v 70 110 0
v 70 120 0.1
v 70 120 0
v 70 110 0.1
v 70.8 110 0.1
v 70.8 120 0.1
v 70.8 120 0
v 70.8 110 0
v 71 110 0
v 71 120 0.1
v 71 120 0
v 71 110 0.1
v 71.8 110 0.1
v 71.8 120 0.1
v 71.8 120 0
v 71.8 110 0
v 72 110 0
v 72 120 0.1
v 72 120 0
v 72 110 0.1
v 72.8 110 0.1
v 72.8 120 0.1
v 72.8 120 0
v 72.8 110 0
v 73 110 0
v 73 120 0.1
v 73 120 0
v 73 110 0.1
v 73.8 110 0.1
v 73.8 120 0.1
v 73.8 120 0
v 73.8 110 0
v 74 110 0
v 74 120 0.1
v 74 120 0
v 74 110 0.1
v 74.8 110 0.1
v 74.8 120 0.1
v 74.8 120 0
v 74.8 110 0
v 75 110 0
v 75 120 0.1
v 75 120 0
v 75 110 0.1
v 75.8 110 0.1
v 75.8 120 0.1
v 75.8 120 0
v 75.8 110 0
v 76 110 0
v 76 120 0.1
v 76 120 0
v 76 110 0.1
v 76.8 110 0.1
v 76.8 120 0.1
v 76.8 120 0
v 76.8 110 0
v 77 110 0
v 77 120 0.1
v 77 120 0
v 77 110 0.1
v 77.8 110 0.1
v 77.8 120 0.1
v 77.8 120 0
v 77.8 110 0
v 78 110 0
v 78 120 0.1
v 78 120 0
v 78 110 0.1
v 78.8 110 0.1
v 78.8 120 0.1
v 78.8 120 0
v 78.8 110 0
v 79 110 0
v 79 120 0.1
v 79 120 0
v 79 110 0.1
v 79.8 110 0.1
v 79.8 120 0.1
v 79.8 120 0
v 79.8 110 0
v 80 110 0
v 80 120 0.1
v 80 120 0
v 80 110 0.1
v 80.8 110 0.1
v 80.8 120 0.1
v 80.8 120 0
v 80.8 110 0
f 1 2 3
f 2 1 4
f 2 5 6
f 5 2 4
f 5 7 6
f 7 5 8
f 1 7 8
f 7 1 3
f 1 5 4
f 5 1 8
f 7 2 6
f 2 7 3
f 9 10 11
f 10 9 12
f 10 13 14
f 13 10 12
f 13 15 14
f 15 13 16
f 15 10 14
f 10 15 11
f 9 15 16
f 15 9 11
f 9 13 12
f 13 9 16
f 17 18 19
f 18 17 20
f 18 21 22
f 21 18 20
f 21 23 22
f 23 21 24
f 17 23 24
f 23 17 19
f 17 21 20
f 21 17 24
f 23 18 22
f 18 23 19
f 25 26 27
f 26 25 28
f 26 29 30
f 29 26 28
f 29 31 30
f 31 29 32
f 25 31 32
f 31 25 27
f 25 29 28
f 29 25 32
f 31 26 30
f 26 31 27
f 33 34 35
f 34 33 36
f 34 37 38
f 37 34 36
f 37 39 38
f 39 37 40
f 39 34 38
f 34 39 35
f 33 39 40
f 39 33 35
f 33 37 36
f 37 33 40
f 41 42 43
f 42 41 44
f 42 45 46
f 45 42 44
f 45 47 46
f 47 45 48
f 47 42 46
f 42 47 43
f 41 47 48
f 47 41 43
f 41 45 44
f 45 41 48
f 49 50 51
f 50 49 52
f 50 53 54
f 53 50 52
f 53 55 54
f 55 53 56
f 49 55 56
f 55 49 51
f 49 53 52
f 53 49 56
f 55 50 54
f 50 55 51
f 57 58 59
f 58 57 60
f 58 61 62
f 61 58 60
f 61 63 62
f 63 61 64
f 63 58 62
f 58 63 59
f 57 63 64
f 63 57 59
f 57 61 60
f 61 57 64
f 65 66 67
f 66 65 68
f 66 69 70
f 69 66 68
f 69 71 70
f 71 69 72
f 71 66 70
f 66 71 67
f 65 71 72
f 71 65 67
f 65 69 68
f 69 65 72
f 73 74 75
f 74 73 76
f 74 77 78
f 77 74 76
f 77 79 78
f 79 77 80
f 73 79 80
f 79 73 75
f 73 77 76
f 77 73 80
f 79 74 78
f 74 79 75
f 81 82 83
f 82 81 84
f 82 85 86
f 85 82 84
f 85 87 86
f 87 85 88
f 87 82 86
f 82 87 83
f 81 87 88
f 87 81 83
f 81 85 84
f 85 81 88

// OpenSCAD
translate([10+60,10+100,0])
        for (i = [0 : 10]){
            translate([i,0,0])
                cube(size = [0.8,10,0.1]);
    }
